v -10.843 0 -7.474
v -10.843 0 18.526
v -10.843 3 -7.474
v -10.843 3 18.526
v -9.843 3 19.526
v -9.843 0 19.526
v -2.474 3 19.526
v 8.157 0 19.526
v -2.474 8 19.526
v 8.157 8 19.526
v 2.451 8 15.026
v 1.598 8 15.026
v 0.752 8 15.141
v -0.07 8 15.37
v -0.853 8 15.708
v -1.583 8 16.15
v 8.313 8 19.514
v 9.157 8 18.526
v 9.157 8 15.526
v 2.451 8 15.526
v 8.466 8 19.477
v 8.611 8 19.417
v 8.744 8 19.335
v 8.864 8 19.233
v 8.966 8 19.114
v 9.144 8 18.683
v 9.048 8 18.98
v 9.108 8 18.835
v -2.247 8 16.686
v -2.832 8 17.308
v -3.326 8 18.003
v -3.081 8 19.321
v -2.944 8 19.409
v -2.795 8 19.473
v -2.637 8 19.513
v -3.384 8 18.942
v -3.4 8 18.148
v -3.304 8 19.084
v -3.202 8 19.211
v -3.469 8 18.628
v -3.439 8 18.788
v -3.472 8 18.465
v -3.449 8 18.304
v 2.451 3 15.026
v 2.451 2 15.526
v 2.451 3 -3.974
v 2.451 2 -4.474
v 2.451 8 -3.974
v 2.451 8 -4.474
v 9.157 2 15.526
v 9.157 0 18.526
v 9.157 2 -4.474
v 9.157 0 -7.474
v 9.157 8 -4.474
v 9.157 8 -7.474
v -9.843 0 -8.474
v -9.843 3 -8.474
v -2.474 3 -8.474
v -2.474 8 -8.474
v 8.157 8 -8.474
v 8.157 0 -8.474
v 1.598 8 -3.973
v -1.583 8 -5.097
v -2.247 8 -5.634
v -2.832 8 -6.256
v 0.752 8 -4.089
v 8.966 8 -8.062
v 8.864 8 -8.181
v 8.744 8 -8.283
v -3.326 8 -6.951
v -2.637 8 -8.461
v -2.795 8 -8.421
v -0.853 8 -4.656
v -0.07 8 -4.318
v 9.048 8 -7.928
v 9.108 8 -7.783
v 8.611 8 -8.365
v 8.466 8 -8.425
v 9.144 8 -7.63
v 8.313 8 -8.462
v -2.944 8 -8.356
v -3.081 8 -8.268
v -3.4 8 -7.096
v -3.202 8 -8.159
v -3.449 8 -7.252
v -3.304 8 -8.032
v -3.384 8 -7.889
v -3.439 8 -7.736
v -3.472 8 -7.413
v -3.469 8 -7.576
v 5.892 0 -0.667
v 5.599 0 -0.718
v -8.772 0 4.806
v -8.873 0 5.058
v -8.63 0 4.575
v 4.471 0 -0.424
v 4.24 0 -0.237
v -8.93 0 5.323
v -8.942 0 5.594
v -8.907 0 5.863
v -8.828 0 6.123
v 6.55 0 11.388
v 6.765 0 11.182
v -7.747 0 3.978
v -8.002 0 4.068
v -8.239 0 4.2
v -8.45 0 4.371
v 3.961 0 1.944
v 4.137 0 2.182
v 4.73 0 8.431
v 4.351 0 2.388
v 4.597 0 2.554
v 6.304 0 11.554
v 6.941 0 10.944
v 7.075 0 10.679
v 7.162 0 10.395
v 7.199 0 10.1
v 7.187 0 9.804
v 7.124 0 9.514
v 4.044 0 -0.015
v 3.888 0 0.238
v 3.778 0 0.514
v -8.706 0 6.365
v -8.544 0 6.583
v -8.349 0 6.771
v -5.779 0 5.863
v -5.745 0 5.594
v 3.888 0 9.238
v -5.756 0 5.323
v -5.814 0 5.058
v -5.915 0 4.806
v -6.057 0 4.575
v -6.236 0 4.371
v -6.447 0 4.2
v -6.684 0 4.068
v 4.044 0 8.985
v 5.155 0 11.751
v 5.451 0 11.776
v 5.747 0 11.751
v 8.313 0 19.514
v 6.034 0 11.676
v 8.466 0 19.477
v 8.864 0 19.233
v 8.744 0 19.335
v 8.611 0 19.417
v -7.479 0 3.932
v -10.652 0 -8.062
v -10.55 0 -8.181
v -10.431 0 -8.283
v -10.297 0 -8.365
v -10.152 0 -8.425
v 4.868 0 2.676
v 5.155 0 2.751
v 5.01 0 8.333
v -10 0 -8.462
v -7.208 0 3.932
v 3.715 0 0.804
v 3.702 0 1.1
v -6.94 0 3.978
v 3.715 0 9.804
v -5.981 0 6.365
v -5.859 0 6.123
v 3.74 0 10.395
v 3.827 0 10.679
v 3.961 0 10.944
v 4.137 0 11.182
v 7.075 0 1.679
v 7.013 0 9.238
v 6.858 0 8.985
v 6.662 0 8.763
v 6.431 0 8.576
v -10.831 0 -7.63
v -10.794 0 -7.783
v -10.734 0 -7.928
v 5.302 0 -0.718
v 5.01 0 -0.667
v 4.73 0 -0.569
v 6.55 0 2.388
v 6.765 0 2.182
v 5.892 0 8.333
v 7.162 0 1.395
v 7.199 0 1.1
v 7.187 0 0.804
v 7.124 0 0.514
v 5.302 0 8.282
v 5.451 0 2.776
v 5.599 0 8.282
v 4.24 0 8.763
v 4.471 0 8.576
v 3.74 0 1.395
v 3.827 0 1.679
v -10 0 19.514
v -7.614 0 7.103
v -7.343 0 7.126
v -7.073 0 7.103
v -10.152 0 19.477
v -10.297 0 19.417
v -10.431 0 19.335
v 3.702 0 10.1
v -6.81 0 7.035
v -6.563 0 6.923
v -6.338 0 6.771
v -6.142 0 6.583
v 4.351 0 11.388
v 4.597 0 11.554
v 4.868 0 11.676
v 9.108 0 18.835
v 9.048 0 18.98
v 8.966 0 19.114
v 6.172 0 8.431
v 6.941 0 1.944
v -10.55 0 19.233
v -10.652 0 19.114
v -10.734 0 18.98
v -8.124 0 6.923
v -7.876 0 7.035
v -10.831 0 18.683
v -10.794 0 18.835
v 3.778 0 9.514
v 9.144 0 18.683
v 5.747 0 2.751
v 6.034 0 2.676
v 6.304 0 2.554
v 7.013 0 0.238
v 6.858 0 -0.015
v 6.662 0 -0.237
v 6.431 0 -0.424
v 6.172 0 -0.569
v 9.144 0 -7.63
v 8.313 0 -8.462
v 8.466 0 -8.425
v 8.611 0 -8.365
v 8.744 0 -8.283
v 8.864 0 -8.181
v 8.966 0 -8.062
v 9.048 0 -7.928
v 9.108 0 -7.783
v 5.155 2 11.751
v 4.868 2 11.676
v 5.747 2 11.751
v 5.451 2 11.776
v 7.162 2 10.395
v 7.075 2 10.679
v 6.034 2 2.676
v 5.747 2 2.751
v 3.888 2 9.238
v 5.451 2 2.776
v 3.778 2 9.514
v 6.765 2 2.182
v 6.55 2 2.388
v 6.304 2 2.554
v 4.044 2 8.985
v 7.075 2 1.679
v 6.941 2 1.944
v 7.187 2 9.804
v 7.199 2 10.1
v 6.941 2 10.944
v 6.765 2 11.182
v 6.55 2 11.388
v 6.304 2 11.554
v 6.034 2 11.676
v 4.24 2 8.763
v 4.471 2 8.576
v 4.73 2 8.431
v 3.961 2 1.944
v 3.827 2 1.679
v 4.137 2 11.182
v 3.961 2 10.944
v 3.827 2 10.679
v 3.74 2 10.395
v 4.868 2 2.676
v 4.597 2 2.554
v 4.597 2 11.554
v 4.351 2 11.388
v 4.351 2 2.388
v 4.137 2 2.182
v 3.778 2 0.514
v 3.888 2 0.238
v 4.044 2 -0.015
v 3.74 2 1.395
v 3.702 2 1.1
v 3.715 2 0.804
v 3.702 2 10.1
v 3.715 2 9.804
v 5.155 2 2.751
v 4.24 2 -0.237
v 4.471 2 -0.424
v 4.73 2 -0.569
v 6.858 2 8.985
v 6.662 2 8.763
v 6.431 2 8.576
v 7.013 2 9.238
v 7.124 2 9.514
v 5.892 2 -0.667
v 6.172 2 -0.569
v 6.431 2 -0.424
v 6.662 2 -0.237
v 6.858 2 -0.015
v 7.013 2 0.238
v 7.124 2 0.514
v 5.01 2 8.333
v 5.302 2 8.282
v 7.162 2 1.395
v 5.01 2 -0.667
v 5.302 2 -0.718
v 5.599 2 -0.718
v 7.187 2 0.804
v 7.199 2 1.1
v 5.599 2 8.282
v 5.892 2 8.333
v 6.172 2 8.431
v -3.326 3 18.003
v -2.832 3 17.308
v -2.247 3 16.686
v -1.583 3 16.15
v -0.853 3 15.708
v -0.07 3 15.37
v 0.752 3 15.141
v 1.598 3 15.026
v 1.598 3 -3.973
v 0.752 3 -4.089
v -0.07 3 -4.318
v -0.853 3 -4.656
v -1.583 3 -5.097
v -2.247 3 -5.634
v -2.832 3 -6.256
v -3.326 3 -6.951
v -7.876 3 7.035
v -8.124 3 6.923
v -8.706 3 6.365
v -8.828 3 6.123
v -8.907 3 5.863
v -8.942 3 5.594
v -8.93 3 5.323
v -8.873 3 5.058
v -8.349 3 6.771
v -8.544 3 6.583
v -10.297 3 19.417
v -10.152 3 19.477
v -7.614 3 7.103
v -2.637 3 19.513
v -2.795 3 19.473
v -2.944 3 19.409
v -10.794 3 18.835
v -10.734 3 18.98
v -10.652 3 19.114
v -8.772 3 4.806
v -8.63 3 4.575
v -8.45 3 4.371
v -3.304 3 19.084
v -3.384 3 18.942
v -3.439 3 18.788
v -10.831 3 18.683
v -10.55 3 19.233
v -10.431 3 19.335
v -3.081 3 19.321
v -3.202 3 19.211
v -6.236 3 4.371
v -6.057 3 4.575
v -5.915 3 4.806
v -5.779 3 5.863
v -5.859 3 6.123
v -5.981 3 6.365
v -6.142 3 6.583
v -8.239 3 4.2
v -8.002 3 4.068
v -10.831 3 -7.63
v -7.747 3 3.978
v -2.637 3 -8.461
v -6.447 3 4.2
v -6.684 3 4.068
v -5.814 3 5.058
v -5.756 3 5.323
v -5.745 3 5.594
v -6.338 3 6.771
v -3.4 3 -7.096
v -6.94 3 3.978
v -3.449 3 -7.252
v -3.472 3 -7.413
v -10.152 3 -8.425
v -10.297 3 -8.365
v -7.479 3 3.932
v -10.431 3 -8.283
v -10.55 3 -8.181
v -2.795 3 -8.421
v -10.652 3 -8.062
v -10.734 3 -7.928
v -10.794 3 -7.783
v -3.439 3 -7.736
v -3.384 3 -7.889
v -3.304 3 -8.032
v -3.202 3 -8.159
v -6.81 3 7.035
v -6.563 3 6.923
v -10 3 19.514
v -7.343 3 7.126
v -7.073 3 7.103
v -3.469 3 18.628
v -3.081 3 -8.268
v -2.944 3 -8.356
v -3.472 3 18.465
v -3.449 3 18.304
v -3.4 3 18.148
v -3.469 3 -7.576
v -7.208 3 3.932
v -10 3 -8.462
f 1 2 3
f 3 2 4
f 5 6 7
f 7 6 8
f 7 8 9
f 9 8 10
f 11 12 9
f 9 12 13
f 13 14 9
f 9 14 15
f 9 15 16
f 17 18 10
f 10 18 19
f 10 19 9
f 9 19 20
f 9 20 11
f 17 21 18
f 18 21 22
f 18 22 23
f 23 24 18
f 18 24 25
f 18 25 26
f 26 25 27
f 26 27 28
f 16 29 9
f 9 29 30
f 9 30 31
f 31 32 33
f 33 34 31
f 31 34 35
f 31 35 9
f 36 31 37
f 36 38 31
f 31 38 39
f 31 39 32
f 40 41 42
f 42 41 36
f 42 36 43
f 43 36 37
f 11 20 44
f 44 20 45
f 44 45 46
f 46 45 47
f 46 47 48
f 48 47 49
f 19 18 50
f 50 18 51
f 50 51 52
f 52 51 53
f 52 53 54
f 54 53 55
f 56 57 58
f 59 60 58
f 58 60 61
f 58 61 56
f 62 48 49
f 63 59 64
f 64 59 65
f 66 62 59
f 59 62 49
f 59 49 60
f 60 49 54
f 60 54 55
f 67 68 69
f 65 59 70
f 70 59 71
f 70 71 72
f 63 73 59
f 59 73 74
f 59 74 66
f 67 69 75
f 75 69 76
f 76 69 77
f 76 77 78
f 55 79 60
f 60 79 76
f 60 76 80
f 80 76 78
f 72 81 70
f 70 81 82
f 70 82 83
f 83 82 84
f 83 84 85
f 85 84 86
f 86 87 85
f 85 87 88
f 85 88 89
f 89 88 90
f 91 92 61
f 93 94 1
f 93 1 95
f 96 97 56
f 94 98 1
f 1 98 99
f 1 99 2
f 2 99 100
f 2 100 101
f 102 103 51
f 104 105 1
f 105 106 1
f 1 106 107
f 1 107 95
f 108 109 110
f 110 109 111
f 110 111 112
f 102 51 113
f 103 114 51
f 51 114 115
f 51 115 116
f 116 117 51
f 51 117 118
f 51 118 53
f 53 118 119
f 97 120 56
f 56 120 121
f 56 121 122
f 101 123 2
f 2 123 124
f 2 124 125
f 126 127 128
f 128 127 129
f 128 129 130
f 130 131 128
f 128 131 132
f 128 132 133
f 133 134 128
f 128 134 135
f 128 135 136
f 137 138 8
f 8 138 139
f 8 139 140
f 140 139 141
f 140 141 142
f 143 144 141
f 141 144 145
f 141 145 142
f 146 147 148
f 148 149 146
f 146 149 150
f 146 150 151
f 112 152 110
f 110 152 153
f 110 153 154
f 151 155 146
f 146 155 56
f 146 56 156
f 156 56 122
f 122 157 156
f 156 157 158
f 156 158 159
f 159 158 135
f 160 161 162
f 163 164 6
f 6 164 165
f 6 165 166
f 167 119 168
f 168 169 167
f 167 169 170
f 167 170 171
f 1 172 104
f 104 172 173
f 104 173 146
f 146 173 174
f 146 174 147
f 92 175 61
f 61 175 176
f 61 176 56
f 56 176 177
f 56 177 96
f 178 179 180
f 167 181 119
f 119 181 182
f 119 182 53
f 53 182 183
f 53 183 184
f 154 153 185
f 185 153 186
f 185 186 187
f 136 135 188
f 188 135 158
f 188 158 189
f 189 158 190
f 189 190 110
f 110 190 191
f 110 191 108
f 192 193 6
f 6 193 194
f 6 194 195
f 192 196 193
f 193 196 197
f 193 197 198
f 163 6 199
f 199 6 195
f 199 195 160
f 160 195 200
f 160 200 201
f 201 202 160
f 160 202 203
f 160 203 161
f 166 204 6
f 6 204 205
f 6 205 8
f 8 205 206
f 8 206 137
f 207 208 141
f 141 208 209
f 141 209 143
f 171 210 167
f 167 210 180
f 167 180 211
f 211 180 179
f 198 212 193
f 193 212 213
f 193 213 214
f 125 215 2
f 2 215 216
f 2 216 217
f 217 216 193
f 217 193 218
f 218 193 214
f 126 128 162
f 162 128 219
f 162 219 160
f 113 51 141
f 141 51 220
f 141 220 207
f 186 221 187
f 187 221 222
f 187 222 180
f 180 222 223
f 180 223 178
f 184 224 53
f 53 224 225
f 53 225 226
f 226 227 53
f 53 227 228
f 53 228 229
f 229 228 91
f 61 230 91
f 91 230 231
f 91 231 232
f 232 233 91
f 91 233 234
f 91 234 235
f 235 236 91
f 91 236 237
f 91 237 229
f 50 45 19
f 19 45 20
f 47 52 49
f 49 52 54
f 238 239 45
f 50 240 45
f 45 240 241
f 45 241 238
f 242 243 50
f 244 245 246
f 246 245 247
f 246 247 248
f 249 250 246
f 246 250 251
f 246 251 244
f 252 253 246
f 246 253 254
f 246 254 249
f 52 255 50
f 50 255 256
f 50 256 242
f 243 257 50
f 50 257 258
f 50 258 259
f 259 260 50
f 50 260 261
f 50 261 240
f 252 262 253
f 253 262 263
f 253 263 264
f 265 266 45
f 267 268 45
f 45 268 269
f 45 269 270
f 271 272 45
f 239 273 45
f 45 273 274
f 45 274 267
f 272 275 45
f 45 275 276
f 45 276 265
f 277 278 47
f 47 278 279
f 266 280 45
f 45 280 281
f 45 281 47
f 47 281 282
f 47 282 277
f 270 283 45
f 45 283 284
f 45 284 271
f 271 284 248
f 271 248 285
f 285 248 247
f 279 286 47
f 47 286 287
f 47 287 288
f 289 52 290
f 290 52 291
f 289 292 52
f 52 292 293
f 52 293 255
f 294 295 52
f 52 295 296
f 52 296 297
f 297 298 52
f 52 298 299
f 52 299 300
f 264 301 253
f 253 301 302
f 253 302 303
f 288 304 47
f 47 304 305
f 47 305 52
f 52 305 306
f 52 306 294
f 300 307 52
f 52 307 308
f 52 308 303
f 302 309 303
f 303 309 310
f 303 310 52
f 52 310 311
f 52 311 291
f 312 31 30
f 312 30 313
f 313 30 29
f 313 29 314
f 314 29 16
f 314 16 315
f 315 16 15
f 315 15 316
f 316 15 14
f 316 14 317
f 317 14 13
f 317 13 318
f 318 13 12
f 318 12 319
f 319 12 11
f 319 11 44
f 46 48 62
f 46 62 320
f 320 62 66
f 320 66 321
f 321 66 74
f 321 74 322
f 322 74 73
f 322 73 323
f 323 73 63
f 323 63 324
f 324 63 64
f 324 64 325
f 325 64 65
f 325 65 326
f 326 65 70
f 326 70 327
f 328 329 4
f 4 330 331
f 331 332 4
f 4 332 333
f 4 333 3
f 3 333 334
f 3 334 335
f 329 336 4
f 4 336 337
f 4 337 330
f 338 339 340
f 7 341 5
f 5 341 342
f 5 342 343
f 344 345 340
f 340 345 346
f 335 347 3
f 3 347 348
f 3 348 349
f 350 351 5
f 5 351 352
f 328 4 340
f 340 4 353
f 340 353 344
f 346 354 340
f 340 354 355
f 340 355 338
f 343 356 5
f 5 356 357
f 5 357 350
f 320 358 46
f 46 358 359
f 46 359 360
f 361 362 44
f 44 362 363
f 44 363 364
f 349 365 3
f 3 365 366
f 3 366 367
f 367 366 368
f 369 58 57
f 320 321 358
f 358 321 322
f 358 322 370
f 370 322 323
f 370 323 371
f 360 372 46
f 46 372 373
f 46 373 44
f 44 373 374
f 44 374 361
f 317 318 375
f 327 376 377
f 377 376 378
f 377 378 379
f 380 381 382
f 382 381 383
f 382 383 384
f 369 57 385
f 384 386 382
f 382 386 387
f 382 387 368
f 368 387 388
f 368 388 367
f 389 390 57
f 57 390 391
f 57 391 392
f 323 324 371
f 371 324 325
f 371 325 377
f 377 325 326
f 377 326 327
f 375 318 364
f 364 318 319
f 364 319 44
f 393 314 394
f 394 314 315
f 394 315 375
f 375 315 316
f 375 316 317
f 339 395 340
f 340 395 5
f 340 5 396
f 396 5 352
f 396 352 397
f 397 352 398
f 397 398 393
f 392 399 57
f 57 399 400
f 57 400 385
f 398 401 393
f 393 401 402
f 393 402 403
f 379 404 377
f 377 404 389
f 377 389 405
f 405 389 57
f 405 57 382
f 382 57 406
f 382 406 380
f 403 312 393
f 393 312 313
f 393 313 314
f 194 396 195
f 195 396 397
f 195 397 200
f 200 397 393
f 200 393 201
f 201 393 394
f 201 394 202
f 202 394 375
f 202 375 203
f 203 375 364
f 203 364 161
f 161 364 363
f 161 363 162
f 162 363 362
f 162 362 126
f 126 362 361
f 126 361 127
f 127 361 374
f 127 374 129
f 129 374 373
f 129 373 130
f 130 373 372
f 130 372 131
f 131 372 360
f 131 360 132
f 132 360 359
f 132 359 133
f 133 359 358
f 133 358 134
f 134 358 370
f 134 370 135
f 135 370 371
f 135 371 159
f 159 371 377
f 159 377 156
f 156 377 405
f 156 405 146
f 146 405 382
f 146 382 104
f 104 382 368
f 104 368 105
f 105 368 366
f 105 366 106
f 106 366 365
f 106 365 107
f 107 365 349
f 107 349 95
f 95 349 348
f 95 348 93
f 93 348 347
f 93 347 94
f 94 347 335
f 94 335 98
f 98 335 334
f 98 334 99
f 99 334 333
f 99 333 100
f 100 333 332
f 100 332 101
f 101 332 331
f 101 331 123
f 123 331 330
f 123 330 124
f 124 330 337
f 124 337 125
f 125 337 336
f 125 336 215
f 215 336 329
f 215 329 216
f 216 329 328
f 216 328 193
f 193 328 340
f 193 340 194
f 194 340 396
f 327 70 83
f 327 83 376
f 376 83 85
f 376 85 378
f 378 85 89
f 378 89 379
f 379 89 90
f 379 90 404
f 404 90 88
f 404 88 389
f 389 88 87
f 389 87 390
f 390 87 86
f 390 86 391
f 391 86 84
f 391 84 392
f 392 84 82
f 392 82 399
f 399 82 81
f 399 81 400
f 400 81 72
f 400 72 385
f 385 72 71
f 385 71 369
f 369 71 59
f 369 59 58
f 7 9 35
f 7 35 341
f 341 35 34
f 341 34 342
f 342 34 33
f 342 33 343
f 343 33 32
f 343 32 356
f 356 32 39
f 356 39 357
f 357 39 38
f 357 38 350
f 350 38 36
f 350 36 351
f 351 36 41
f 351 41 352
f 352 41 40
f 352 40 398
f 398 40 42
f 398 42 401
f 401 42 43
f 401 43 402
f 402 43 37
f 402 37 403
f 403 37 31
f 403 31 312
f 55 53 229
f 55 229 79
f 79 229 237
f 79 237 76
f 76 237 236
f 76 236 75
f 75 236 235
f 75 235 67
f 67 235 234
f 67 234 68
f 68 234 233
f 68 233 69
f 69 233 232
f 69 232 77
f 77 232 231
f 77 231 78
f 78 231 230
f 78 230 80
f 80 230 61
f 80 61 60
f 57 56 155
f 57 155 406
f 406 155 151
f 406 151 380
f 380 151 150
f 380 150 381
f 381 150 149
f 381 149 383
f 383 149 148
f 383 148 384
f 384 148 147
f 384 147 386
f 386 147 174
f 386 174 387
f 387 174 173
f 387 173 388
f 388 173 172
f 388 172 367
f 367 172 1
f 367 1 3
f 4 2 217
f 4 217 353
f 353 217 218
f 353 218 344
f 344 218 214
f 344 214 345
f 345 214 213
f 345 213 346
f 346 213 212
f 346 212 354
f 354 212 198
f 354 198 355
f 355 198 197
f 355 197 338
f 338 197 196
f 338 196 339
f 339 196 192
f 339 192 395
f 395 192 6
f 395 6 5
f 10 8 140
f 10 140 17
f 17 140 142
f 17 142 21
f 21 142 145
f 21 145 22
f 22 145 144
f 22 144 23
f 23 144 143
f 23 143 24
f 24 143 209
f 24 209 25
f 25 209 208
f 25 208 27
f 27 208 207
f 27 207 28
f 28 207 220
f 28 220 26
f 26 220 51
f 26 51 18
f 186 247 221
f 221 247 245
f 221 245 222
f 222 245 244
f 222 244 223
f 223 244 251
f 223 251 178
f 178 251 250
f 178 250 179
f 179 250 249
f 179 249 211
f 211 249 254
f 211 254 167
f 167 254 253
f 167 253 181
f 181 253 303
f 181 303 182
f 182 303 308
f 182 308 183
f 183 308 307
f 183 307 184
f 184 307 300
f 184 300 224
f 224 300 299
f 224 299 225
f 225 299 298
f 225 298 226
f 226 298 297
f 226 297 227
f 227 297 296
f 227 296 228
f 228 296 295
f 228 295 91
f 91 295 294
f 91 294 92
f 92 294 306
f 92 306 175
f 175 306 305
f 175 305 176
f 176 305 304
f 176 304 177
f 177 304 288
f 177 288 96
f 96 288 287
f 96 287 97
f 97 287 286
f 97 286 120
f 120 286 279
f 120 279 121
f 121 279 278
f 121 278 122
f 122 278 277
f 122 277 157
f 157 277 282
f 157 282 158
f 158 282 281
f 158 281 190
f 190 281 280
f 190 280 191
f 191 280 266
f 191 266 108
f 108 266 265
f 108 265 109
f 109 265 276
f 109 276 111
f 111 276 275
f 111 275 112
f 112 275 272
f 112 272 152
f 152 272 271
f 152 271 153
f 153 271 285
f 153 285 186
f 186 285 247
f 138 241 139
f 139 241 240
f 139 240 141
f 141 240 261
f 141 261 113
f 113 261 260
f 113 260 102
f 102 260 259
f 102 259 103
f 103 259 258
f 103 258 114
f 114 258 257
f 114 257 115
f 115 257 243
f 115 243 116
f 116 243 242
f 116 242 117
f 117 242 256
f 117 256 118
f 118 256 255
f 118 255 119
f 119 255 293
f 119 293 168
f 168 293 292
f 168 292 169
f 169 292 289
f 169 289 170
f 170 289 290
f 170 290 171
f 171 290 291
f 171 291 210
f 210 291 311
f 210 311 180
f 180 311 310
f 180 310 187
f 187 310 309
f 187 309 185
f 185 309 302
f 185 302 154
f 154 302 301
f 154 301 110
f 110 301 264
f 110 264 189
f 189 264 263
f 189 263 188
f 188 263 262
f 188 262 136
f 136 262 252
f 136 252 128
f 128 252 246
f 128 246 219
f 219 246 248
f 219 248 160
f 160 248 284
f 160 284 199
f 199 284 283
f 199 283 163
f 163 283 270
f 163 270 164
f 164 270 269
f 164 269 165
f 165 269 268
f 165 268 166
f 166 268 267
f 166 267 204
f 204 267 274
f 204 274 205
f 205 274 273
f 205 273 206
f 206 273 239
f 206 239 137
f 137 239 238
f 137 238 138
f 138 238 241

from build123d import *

# Parameters (mm, degrees)
CROQUIS2_W              = 20
CROQUIS2_H              = 28
SALIENTE_EXTRUIR1_DEPTH = 8
CROQUIS3_W              = 6.705751287
CROQUIS3_H              = 20
CORTAR_EXTRUIR1_DEPTH   = 6
CORTAR_EXTRUIR2_DEPTH   = 5
CROQUIS6_R              = 1.6
CORTAR_EXTRUIR3_DEPTH   = 3
REDONDEO1_R             = 1
SKETCH1_R               = 1.75
CUT_EXTRUDE1_DEPTH      = 24.126770256


with BuildPart() as part:
    # Croquis2 → Saliente-Extruir1 (new body)
    with BuildSketch(Plane(origin=(0, 0, 0), x_dir=(1, 0, 0), z_dir=(0, 1, 0))):
        with Locations((-0.843373494, -5.526104418)):
            Rectangle(CROQUIS2_W, CROQUIS2_H)
    extrude(amount=SALIENTE_EXTRUIR1_DEPTH)

    # Croquis3 → Cortar-Extruir1 (cut)
    with BuildSketch(Plane(origin=(0, 8, 0), x_dir=(1, 0, 0), z_dir=(0, 1, 0))):
        with Locations((5.803750863, -5.526104418)):
            Rectangle(CROQUIS3_W, CROQUIS3_H)
    extrude(amount=-CORTAR_EXTRUIR1_DEPTH, mode=Mode.SUBTRACT)

    # Croquis5 → Cortar-Extruir2 (cut)
    with BuildSketch(Plane(origin=(0, 8, 0), x_dir=(1, 0, 0), z_dir=(0, 1, 0))):
        with BuildLine():
            Line((2.450875219, -15.026104418), (2.450875219, 3.973895582))
            ThreePointArc((2.450875219, 3.973895582), (2.020425803, 3.959111389), (1.589976387, 3.973895582))
            ThreePointArc((1.589976387, 3.973895582), (-1.912953919, 5.345273007), (-4.00171373, 8.473895582))
            Line((-4.00171373, 8.473895582), (-10.843373494, 8.473895582))
            Line((-10.843373494, 8.473895582), (-10.843373494, -19.526104418))
            Line((-10.843373494, -19.526104418), (-4.00171373, -19.526104418))
            ThreePointArc((-4.00171373, -19.526104418), (-1.912953919, -16.397481842), (1.589976387, -15.026104418))
            ThreePointArc((1.589976387, -15.026104418), (2.020425803, -15.011320225), (2.450875219, -15.026104418))
        make_face()
    extrude(amount=-CORTAR_EXTRUIR2_DEPTH, mode=Mode.SUBTRACT)

    # Croquis6 → Cortar-Extruir3 (cut)
    with BuildSketch(Plane(origin=(0, 3, 0), x_dir=(1, 0, 0), z_dir=(0, 1, 0))):
        with Locations(Location((-7.343373494, -5.526104418, 0), (0, 0, 270))):
            Circle(CROQUIS6_R)
    extrude(amount=-CORTAR_EXTRUIR3_DEPTH, mode=Mode.SUBTRACT)

    # Redondeo1
    redondeo1_edges = [part.edges().sort_by_distance(p)[0] for p in [
        (-10.843373494, 1.5, -8.473895582),
        (-10.843373494, 1.5, 19.526104418),
        (-4.00171373, 5.5, 19.526104418),
        (-4.00171373, 5.5, -8.473895582),
        (9.156626506, 4, -8.473895582),
        (9.156626506, 4, 19.526104418),
    ]]
    fillet(redondeo1_edges, radius=REDONDEO1_R)

    # Sketch1 → Cut-Extrude1 (cut, through all)
    with BuildSketch(Plane(origin=(0, 2, 0), x_dir=(1, 0, 0), z_dir=(0, 1, 0))):
        with Locations(Location((5.450875219, -1.026104418, 0), (0, 0, 270))):
            Circle(SKETCH1_R)
        with Locations(Location((5.450875219, -10.026104418, 0), (0, 0, 270))):
            Circle(SKETCH1_R)
    extrude(amount=-CUT_EXTRUDE1_DEPTH, mode=Mode.SUBTRACT)


solid = part.part
